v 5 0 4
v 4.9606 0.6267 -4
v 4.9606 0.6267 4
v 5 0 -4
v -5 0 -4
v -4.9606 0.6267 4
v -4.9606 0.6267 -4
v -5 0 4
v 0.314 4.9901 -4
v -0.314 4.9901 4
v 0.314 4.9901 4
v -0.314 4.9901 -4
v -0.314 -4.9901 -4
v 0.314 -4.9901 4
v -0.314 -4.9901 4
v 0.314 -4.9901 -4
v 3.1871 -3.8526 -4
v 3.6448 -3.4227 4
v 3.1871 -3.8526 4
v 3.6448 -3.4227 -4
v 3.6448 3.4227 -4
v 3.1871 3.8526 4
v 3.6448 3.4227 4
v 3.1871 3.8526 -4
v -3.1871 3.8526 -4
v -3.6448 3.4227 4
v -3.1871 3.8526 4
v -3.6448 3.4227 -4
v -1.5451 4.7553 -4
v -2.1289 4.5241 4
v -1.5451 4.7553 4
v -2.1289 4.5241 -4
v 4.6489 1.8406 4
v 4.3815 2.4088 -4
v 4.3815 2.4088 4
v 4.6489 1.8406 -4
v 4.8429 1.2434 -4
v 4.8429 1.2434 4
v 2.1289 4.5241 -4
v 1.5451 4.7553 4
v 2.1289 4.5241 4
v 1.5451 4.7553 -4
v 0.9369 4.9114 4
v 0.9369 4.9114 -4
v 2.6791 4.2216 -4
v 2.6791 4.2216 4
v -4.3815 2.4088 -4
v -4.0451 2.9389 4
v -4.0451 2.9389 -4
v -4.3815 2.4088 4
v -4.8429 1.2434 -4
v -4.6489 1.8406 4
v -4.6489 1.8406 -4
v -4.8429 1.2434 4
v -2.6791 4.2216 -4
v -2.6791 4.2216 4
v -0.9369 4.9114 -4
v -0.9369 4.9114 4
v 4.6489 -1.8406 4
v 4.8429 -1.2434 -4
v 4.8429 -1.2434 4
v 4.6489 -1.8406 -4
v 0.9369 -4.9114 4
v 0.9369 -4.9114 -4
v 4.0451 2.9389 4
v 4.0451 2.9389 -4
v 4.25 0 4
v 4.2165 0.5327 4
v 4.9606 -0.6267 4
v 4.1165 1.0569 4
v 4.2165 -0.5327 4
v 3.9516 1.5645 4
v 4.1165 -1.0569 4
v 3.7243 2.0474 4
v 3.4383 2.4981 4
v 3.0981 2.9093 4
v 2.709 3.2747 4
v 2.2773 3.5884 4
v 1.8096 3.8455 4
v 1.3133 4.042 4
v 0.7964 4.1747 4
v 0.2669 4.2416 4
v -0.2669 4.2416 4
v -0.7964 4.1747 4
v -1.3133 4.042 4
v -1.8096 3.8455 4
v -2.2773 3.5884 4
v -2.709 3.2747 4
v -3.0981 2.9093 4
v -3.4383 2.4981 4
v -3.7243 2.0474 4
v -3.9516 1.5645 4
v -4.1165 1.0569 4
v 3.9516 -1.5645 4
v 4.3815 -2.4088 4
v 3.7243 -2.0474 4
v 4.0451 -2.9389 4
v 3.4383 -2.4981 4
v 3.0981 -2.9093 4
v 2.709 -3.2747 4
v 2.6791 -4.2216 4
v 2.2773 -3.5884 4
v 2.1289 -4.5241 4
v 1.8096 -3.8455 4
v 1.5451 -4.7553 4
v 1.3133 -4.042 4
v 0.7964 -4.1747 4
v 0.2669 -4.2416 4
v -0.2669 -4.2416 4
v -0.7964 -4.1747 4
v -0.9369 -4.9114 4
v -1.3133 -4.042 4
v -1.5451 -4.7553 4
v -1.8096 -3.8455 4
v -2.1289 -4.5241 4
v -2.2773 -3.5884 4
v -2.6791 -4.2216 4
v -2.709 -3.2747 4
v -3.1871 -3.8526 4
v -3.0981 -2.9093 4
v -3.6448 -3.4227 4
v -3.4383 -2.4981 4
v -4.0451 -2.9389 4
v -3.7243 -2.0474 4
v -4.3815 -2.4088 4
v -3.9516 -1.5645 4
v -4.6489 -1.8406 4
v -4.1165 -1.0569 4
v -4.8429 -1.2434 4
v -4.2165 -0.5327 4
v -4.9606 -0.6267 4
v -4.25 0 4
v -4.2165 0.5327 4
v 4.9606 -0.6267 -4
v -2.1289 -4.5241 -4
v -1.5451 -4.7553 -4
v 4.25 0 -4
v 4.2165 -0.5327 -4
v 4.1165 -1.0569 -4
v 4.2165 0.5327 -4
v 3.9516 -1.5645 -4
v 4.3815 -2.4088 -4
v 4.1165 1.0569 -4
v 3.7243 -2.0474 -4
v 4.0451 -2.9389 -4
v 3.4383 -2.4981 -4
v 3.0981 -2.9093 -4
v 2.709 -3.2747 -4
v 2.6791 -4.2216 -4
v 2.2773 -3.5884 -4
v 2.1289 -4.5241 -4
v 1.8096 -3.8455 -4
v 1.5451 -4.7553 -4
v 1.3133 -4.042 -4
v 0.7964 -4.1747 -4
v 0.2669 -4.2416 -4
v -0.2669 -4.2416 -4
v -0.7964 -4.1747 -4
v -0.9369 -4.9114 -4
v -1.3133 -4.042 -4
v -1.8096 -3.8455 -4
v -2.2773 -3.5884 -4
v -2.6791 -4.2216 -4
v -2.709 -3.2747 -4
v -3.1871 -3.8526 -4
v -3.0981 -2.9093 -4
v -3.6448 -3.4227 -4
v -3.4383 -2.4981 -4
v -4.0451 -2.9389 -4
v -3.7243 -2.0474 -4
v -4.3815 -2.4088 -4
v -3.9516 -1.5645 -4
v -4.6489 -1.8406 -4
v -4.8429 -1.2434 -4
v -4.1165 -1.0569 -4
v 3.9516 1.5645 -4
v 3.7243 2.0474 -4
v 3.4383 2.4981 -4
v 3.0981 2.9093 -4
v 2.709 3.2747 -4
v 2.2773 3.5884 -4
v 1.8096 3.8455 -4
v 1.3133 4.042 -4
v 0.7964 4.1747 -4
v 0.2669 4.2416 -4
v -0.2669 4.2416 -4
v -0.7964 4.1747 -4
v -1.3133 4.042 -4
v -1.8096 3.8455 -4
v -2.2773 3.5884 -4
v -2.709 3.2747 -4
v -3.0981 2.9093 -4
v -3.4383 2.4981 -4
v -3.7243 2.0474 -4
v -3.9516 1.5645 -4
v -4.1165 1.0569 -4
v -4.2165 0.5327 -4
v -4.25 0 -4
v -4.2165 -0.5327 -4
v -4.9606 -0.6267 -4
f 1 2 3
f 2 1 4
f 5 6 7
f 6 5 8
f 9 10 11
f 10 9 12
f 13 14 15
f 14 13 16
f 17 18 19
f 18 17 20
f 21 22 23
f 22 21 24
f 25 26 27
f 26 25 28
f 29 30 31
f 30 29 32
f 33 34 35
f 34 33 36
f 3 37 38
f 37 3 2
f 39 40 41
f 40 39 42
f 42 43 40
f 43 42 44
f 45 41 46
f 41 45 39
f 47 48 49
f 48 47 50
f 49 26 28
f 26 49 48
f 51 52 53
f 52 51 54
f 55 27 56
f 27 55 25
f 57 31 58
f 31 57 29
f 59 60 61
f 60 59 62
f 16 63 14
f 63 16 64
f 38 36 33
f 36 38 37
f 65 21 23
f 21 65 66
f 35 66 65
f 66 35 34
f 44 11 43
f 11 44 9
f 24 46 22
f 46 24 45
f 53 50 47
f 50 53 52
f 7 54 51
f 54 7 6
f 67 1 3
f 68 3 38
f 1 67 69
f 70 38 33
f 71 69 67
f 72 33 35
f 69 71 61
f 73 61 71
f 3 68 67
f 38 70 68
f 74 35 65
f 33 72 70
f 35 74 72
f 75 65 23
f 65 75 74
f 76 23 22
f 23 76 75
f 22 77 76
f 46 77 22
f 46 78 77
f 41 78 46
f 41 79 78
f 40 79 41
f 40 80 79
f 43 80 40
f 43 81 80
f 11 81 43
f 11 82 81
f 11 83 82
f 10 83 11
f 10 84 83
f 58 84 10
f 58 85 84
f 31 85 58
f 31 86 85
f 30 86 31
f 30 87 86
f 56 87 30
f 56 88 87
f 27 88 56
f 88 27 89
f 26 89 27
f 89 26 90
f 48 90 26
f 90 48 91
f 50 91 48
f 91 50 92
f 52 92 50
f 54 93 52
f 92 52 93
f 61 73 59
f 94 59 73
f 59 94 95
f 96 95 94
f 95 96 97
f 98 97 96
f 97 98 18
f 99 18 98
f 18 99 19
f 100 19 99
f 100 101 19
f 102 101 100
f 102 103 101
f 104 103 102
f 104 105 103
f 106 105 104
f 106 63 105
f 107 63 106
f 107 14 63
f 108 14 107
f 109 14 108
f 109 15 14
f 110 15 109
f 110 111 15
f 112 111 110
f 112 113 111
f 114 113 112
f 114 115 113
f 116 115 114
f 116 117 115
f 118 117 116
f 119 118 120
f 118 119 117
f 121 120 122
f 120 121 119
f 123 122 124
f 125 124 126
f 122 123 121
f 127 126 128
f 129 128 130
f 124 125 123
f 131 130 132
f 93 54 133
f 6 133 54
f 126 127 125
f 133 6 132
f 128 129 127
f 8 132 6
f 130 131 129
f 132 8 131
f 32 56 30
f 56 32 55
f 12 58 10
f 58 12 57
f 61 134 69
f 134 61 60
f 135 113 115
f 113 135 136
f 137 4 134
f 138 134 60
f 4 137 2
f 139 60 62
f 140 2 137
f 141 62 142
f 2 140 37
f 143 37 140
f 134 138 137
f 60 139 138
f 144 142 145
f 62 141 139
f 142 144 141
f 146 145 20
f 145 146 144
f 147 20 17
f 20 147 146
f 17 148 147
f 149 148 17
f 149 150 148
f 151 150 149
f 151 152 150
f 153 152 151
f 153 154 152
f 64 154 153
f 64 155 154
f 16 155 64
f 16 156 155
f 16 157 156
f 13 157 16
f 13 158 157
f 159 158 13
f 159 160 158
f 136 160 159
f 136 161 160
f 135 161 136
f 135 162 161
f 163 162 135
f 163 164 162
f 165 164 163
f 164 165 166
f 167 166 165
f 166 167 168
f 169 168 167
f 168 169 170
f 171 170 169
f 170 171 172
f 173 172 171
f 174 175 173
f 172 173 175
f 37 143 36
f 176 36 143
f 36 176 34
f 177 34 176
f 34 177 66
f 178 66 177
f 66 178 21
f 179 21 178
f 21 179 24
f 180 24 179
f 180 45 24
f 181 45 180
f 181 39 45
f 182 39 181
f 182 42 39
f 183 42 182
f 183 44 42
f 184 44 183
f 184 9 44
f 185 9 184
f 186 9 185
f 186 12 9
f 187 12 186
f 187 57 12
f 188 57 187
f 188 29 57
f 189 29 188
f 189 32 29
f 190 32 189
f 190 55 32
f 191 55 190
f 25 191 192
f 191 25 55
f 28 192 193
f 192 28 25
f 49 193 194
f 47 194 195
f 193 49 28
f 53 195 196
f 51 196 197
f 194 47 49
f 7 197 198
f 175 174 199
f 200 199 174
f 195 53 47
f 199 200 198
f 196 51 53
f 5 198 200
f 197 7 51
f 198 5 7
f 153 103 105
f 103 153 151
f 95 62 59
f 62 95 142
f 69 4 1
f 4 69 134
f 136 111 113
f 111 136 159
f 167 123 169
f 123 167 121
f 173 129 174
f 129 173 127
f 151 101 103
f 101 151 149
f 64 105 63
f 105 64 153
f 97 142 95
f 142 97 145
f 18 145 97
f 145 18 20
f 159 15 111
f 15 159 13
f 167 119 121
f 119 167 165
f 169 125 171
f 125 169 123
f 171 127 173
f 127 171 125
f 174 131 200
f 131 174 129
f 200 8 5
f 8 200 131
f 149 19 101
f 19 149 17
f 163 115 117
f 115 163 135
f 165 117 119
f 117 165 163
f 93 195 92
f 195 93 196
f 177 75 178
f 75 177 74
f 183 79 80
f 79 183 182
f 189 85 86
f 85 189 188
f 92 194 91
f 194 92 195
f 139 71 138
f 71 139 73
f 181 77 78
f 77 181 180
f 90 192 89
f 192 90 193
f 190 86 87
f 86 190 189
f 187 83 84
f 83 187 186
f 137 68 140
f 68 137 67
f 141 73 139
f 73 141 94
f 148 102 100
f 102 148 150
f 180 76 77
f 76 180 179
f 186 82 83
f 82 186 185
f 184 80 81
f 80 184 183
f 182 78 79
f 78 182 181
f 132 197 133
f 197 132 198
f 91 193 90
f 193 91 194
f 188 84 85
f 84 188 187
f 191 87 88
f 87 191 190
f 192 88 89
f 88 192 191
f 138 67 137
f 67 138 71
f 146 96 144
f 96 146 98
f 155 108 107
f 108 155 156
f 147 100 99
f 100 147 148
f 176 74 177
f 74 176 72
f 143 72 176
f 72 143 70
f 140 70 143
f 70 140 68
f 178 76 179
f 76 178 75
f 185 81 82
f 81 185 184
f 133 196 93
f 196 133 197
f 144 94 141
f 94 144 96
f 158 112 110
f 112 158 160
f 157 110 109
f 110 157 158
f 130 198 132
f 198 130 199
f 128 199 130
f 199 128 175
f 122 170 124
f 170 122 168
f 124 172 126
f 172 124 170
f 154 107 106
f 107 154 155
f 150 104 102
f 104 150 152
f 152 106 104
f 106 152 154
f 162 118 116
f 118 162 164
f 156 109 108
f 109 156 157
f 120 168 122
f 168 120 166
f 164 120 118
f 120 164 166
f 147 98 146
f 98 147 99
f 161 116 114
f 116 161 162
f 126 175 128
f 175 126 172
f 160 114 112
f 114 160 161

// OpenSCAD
$fn = 50;


difference() {
	union() {
		translate(v = [0, 0, -4.0000000000]) {
			cylinder(h = 8, r = 5.0000000000);
		}
	}
	union() {
		translate(v = [0, 0, -100.0000000000]) {
			cylinder(h = 200, r = 4.2500000000);
		}
	}
}
